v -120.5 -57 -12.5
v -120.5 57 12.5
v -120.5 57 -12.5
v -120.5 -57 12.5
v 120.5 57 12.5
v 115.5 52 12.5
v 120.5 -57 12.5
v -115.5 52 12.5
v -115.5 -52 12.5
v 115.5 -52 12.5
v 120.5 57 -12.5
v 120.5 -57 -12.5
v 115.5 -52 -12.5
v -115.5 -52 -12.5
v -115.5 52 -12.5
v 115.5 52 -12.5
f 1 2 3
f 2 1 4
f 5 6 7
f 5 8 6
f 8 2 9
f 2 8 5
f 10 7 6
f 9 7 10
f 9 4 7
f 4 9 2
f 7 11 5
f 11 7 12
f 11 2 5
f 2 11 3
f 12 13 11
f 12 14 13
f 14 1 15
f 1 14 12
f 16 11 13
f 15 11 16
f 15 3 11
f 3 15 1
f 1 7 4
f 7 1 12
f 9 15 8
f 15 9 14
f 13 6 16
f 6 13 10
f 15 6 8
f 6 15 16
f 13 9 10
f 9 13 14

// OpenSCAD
difference() 
{
cube([241,114, 25],center=true);
cube([231,104, 25],center=true);
}
